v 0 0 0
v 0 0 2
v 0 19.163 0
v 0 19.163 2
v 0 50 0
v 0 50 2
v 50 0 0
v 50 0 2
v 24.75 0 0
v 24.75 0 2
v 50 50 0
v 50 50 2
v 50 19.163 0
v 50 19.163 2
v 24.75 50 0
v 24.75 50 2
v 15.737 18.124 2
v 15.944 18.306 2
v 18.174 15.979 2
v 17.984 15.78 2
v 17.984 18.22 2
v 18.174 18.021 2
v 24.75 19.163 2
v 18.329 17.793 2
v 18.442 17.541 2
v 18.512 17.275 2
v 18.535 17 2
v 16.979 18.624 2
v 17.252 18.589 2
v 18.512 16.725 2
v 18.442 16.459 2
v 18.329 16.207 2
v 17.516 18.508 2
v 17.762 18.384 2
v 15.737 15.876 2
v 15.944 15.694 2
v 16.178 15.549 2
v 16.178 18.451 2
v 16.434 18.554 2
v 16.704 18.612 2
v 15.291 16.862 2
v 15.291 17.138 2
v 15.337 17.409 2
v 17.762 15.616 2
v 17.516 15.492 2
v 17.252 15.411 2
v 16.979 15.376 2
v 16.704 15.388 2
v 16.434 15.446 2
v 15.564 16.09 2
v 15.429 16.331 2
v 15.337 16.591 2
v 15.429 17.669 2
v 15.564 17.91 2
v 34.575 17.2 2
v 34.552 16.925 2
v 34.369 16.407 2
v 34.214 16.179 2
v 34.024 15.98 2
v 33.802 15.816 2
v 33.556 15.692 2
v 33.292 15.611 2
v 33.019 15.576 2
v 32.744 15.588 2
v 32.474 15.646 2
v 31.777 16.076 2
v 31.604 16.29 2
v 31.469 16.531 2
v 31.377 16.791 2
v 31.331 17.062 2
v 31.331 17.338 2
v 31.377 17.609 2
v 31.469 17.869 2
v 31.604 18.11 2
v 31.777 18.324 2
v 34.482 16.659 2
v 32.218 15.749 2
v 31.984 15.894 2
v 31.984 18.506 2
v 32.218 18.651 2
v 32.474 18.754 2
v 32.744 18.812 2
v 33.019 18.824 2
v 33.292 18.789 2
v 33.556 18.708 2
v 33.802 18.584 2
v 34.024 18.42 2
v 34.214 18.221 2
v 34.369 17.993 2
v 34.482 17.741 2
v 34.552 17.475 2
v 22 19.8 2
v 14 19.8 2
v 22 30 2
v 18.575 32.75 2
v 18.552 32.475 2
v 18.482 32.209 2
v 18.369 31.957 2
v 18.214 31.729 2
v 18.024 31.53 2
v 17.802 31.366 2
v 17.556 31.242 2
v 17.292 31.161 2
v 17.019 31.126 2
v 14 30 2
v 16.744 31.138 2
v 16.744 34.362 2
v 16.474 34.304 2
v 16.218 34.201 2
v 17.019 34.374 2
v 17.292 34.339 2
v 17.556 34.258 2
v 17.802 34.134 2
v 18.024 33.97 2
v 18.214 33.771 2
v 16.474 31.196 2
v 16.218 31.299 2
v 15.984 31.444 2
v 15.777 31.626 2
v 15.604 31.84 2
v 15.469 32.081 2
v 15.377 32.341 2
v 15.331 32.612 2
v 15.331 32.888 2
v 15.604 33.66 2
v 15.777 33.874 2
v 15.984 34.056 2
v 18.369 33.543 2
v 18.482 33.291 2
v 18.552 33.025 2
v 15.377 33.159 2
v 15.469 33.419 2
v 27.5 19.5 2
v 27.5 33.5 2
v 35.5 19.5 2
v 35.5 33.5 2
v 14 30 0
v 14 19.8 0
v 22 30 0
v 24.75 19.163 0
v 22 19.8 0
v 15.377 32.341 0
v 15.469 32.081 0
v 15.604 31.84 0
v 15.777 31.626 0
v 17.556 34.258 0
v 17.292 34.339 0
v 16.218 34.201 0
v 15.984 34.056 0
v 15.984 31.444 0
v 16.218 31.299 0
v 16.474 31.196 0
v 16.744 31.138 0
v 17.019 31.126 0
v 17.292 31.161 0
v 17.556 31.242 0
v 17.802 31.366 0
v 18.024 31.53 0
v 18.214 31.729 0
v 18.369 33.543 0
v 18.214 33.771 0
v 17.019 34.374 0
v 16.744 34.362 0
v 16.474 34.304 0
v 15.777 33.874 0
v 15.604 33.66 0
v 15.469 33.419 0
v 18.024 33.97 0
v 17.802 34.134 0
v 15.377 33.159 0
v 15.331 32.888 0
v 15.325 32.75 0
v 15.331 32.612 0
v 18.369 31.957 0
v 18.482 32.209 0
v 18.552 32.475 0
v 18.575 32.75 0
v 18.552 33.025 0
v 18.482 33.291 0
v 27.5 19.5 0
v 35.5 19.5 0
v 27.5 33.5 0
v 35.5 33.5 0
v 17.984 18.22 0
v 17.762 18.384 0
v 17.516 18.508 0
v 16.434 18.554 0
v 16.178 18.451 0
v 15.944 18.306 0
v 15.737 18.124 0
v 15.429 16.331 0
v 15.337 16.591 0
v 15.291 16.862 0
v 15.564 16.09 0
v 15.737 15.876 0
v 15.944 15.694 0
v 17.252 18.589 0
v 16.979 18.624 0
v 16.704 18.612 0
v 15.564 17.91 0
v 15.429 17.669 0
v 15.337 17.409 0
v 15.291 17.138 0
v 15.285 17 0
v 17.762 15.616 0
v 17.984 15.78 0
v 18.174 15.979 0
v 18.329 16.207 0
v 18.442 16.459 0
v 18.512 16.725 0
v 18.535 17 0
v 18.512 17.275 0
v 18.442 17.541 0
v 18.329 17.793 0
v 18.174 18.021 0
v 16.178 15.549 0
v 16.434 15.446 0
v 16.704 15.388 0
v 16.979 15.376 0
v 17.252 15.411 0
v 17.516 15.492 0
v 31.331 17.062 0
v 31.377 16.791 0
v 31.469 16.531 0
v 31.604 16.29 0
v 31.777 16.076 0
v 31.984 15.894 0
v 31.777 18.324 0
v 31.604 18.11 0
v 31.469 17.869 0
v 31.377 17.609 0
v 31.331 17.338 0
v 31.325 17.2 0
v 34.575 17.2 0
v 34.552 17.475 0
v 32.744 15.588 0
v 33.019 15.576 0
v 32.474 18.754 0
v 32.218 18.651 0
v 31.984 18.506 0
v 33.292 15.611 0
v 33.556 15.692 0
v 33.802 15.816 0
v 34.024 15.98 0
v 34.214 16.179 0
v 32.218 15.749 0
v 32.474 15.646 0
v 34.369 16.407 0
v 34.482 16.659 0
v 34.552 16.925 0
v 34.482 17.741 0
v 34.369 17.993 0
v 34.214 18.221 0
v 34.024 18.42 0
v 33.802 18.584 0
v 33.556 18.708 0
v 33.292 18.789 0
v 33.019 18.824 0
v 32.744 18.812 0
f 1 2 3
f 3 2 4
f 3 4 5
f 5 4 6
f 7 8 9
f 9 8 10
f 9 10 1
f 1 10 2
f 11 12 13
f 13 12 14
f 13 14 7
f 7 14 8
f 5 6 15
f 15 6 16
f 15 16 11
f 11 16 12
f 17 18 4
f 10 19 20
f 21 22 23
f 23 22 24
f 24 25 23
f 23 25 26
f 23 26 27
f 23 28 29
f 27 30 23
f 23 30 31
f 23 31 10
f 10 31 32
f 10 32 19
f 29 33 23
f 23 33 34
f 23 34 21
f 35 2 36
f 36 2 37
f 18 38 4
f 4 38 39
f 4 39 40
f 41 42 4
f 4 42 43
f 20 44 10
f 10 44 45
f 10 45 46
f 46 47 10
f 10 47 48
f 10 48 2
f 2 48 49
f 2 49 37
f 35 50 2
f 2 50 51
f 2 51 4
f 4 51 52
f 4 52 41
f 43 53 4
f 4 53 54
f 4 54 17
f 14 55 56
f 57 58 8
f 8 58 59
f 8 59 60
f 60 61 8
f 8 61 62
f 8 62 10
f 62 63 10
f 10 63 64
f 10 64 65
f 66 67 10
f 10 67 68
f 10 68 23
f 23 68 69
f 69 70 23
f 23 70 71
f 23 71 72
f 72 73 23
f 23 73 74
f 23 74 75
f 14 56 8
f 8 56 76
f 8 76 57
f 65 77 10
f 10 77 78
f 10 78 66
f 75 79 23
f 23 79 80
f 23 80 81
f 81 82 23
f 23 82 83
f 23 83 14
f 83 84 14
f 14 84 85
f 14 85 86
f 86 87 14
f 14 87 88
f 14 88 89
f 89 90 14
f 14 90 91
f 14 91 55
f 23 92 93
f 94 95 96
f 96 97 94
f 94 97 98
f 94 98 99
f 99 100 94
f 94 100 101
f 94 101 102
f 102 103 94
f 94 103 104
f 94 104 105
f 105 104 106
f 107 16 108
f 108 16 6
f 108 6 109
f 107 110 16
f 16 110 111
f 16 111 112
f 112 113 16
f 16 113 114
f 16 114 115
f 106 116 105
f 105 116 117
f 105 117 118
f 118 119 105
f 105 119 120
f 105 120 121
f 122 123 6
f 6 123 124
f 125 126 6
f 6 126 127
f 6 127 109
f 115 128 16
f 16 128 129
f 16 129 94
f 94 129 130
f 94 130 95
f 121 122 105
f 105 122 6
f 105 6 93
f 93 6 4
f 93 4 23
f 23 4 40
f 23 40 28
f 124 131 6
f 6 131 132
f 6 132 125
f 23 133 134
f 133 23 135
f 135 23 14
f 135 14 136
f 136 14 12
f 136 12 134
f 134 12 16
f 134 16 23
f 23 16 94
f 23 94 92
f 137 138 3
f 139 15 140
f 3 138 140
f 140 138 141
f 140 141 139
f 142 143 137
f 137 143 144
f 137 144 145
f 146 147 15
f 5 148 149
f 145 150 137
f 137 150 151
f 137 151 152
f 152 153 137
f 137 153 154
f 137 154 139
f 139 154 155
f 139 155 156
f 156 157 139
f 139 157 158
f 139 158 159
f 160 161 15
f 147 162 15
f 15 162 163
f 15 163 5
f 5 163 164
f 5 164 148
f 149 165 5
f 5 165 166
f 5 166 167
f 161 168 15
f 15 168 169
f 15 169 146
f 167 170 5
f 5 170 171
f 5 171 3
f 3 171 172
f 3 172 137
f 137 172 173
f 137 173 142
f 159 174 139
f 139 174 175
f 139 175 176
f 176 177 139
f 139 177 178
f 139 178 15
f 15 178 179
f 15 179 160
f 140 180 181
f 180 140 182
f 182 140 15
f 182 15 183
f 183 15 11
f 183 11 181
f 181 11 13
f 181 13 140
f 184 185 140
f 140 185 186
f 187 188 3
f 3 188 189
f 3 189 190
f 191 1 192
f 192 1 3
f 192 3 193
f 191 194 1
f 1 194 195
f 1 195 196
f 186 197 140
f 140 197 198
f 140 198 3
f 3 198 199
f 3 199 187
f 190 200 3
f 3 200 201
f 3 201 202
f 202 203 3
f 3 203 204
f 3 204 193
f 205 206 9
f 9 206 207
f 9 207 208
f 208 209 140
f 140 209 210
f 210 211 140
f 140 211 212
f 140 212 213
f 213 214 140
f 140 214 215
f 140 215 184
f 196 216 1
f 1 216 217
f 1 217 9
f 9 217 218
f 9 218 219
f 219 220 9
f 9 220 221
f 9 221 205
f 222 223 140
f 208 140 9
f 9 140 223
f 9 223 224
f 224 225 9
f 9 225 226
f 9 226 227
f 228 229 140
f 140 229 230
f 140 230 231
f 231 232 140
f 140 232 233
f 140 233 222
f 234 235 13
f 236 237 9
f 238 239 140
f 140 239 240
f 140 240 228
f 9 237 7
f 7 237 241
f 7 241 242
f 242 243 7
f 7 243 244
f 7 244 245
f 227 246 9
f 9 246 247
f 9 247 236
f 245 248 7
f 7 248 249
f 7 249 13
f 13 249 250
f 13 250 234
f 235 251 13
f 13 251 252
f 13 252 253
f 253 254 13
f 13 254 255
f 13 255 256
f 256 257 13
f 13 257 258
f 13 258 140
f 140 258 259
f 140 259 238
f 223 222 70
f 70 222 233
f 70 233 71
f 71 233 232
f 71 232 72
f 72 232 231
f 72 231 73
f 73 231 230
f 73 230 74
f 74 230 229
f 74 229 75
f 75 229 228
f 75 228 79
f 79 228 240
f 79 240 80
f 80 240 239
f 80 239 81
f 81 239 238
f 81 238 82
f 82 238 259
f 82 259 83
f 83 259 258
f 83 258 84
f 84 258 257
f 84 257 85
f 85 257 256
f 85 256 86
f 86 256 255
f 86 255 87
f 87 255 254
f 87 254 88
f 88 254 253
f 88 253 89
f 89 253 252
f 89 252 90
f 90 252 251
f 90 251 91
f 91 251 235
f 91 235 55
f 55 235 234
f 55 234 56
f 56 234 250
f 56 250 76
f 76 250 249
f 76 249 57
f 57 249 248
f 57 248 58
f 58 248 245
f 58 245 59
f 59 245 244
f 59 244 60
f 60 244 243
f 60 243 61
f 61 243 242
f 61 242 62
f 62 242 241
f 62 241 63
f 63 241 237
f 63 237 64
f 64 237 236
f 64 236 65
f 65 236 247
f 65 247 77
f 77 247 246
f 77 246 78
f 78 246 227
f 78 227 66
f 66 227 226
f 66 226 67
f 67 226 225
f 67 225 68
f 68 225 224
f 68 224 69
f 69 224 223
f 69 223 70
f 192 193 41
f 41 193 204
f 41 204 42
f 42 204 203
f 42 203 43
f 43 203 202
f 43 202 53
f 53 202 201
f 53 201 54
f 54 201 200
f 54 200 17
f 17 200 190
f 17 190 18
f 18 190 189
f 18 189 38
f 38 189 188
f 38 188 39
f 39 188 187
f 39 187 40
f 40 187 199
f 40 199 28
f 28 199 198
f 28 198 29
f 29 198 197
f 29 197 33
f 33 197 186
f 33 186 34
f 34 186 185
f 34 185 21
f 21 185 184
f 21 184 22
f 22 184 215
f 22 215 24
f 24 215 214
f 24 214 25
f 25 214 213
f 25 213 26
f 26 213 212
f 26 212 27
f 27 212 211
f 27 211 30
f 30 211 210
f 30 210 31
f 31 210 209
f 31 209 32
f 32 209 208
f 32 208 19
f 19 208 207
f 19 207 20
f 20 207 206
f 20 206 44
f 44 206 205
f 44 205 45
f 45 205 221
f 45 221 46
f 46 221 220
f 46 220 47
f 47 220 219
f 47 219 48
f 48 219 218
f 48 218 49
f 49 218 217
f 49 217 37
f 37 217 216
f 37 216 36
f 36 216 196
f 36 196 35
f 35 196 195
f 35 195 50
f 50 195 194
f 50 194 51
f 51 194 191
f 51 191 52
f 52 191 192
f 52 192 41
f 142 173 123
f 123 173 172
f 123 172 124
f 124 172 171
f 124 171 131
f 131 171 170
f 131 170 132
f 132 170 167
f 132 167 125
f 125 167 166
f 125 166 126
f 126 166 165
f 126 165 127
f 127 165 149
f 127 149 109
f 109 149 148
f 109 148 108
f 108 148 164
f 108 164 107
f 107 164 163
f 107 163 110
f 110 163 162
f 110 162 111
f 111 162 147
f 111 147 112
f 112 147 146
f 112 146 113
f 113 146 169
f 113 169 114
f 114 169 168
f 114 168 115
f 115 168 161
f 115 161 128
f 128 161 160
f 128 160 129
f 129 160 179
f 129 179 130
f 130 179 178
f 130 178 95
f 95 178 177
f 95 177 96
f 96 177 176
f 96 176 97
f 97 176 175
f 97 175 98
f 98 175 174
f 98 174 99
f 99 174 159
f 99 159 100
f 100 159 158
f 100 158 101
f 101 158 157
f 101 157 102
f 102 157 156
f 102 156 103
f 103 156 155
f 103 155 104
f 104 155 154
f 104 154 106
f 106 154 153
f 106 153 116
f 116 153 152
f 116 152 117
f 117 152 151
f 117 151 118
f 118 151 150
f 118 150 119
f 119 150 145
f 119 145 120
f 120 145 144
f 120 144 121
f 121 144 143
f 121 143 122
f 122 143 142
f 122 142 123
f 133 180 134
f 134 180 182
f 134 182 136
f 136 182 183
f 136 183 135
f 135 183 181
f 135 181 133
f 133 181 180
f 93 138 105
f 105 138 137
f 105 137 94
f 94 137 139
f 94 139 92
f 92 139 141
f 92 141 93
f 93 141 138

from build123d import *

# Parameters (mm, degrees)
SKETCH1_W           = 50
SKETCH1_H           = 50
BOSS_EXTRUDE1_DEPTH = 2
CUT_EXTRUDE1_REACH  = 72.739
SKETCH2_R           = 1.625
CUT_EXTRUDE2_REACH  = 72.739
SKETCH3_W           = 8
SKETCH3_H           = 10.2
SKETCH3_H_2         = 14


with BuildPart() as part:
    # Sketch1 → Boss-Extrude1 (new body)
    with BuildSketch(Plane.XY):
        with Locations((25, 25)):
            Rectangle(SKETCH1_W, SKETCH1_H)
    extrude(amount=BOSS_EXTRUDE1_DEPTH)

    # Sketch2 → Cut-Extrude1 (cut, up to next)
    with BuildSketch(Plane.XY.offset(2), mode=Mode.PRIVATE) as cut_extrude1_sk1:
        with Locations((16.95, 32.75)):
            Circle(SKETCH2_R)
    cut_extrude1_tool1 = extrude(cut_extrude1_sk1.sketch, amount=-CUT_EXTRUDE1_REACH, mode=Mode.PRIVATE) & part.part
    # Sketch2 → Cut-Extrude1 (cut, up to next)
    with BuildSketch(Plane.XY.offset(2), mode=Mode.PRIVATE) as cut_extrude1_sk2:
        with Locations((16.91, 17)):
            Circle(SKETCH2_R)
    cut_extrude1_tool2 = extrude(cut_extrude1_sk2.sketch, amount=-CUT_EXTRUDE1_REACH, mode=Mode.PRIVATE) & part.part
    # Sketch2 → Cut-Extrude1 (cut, up to next)
    with BuildSketch(Plane.XY.offset(2), mode=Mode.PRIVATE) as cut_extrude1_sk3:
        with Locations((32.95, 17.2)):
            Circle(SKETCH2_R)
    cut_extrude1_tool3 = extrude(cut_extrude1_sk3.sketch, amount=-CUT_EXTRUDE1_REACH, mode=Mode.PRIVATE) & part.part
    add(cut_extrude1_tool1.solids().sort_by_distance((16.95, 32.75, 2))[0], mode=Mode.SUBTRACT)
    add(cut_extrude1_tool2.solids().sort_by_distance((16.91, 17, 2))[0], mode=Mode.SUBTRACT)
    add(cut_extrude1_tool3.solids().sort_by_distance((32.95, 17.2, 2))[0], mode=Mode.SUBTRACT)

    # Sketch3 → Cut-Extrude2 (cut, up to next)
    with BuildSketch(Plane.XY.offset(2), mode=Mode.PRIVATE) as cut_extrude2_sk1:
        with Locations((18, 24.9)):
            Rectangle(SKETCH3_W, SKETCH3_H)
    cut_extrude2_tool1 = extrude(cut_extrude2_sk1.sketch, amount=-CUT_EXTRUDE2_REACH, mode=Mode.PRIVATE) & part.part
    # Sketch3 → Cut-Extrude2 (cut, up to next)
    with BuildSketch(Plane.XY.offset(2), mode=Mode.PRIVATE) as cut_extrude2_sk2:
        with Locations((31.5, 26.5)):
            Rectangle(SKETCH3_W, SKETCH3_H_2)
    cut_extrude2_tool2 = extrude(cut_extrude2_sk2.sketch, amount=-CUT_EXTRUDE2_REACH, mode=Mode.PRIVATE) & part.part
    add(cut_extrude2_tool1.solids().sort_by_distance((18, 24.9, 2))[0], mode=Mode.SUBTRACT)
    add(cut_extrude2_tool2.solids().sort_by_distance((31.5, 26.5, 2))[0], mode=Mode.SUBTRACT)


solid = part.part
